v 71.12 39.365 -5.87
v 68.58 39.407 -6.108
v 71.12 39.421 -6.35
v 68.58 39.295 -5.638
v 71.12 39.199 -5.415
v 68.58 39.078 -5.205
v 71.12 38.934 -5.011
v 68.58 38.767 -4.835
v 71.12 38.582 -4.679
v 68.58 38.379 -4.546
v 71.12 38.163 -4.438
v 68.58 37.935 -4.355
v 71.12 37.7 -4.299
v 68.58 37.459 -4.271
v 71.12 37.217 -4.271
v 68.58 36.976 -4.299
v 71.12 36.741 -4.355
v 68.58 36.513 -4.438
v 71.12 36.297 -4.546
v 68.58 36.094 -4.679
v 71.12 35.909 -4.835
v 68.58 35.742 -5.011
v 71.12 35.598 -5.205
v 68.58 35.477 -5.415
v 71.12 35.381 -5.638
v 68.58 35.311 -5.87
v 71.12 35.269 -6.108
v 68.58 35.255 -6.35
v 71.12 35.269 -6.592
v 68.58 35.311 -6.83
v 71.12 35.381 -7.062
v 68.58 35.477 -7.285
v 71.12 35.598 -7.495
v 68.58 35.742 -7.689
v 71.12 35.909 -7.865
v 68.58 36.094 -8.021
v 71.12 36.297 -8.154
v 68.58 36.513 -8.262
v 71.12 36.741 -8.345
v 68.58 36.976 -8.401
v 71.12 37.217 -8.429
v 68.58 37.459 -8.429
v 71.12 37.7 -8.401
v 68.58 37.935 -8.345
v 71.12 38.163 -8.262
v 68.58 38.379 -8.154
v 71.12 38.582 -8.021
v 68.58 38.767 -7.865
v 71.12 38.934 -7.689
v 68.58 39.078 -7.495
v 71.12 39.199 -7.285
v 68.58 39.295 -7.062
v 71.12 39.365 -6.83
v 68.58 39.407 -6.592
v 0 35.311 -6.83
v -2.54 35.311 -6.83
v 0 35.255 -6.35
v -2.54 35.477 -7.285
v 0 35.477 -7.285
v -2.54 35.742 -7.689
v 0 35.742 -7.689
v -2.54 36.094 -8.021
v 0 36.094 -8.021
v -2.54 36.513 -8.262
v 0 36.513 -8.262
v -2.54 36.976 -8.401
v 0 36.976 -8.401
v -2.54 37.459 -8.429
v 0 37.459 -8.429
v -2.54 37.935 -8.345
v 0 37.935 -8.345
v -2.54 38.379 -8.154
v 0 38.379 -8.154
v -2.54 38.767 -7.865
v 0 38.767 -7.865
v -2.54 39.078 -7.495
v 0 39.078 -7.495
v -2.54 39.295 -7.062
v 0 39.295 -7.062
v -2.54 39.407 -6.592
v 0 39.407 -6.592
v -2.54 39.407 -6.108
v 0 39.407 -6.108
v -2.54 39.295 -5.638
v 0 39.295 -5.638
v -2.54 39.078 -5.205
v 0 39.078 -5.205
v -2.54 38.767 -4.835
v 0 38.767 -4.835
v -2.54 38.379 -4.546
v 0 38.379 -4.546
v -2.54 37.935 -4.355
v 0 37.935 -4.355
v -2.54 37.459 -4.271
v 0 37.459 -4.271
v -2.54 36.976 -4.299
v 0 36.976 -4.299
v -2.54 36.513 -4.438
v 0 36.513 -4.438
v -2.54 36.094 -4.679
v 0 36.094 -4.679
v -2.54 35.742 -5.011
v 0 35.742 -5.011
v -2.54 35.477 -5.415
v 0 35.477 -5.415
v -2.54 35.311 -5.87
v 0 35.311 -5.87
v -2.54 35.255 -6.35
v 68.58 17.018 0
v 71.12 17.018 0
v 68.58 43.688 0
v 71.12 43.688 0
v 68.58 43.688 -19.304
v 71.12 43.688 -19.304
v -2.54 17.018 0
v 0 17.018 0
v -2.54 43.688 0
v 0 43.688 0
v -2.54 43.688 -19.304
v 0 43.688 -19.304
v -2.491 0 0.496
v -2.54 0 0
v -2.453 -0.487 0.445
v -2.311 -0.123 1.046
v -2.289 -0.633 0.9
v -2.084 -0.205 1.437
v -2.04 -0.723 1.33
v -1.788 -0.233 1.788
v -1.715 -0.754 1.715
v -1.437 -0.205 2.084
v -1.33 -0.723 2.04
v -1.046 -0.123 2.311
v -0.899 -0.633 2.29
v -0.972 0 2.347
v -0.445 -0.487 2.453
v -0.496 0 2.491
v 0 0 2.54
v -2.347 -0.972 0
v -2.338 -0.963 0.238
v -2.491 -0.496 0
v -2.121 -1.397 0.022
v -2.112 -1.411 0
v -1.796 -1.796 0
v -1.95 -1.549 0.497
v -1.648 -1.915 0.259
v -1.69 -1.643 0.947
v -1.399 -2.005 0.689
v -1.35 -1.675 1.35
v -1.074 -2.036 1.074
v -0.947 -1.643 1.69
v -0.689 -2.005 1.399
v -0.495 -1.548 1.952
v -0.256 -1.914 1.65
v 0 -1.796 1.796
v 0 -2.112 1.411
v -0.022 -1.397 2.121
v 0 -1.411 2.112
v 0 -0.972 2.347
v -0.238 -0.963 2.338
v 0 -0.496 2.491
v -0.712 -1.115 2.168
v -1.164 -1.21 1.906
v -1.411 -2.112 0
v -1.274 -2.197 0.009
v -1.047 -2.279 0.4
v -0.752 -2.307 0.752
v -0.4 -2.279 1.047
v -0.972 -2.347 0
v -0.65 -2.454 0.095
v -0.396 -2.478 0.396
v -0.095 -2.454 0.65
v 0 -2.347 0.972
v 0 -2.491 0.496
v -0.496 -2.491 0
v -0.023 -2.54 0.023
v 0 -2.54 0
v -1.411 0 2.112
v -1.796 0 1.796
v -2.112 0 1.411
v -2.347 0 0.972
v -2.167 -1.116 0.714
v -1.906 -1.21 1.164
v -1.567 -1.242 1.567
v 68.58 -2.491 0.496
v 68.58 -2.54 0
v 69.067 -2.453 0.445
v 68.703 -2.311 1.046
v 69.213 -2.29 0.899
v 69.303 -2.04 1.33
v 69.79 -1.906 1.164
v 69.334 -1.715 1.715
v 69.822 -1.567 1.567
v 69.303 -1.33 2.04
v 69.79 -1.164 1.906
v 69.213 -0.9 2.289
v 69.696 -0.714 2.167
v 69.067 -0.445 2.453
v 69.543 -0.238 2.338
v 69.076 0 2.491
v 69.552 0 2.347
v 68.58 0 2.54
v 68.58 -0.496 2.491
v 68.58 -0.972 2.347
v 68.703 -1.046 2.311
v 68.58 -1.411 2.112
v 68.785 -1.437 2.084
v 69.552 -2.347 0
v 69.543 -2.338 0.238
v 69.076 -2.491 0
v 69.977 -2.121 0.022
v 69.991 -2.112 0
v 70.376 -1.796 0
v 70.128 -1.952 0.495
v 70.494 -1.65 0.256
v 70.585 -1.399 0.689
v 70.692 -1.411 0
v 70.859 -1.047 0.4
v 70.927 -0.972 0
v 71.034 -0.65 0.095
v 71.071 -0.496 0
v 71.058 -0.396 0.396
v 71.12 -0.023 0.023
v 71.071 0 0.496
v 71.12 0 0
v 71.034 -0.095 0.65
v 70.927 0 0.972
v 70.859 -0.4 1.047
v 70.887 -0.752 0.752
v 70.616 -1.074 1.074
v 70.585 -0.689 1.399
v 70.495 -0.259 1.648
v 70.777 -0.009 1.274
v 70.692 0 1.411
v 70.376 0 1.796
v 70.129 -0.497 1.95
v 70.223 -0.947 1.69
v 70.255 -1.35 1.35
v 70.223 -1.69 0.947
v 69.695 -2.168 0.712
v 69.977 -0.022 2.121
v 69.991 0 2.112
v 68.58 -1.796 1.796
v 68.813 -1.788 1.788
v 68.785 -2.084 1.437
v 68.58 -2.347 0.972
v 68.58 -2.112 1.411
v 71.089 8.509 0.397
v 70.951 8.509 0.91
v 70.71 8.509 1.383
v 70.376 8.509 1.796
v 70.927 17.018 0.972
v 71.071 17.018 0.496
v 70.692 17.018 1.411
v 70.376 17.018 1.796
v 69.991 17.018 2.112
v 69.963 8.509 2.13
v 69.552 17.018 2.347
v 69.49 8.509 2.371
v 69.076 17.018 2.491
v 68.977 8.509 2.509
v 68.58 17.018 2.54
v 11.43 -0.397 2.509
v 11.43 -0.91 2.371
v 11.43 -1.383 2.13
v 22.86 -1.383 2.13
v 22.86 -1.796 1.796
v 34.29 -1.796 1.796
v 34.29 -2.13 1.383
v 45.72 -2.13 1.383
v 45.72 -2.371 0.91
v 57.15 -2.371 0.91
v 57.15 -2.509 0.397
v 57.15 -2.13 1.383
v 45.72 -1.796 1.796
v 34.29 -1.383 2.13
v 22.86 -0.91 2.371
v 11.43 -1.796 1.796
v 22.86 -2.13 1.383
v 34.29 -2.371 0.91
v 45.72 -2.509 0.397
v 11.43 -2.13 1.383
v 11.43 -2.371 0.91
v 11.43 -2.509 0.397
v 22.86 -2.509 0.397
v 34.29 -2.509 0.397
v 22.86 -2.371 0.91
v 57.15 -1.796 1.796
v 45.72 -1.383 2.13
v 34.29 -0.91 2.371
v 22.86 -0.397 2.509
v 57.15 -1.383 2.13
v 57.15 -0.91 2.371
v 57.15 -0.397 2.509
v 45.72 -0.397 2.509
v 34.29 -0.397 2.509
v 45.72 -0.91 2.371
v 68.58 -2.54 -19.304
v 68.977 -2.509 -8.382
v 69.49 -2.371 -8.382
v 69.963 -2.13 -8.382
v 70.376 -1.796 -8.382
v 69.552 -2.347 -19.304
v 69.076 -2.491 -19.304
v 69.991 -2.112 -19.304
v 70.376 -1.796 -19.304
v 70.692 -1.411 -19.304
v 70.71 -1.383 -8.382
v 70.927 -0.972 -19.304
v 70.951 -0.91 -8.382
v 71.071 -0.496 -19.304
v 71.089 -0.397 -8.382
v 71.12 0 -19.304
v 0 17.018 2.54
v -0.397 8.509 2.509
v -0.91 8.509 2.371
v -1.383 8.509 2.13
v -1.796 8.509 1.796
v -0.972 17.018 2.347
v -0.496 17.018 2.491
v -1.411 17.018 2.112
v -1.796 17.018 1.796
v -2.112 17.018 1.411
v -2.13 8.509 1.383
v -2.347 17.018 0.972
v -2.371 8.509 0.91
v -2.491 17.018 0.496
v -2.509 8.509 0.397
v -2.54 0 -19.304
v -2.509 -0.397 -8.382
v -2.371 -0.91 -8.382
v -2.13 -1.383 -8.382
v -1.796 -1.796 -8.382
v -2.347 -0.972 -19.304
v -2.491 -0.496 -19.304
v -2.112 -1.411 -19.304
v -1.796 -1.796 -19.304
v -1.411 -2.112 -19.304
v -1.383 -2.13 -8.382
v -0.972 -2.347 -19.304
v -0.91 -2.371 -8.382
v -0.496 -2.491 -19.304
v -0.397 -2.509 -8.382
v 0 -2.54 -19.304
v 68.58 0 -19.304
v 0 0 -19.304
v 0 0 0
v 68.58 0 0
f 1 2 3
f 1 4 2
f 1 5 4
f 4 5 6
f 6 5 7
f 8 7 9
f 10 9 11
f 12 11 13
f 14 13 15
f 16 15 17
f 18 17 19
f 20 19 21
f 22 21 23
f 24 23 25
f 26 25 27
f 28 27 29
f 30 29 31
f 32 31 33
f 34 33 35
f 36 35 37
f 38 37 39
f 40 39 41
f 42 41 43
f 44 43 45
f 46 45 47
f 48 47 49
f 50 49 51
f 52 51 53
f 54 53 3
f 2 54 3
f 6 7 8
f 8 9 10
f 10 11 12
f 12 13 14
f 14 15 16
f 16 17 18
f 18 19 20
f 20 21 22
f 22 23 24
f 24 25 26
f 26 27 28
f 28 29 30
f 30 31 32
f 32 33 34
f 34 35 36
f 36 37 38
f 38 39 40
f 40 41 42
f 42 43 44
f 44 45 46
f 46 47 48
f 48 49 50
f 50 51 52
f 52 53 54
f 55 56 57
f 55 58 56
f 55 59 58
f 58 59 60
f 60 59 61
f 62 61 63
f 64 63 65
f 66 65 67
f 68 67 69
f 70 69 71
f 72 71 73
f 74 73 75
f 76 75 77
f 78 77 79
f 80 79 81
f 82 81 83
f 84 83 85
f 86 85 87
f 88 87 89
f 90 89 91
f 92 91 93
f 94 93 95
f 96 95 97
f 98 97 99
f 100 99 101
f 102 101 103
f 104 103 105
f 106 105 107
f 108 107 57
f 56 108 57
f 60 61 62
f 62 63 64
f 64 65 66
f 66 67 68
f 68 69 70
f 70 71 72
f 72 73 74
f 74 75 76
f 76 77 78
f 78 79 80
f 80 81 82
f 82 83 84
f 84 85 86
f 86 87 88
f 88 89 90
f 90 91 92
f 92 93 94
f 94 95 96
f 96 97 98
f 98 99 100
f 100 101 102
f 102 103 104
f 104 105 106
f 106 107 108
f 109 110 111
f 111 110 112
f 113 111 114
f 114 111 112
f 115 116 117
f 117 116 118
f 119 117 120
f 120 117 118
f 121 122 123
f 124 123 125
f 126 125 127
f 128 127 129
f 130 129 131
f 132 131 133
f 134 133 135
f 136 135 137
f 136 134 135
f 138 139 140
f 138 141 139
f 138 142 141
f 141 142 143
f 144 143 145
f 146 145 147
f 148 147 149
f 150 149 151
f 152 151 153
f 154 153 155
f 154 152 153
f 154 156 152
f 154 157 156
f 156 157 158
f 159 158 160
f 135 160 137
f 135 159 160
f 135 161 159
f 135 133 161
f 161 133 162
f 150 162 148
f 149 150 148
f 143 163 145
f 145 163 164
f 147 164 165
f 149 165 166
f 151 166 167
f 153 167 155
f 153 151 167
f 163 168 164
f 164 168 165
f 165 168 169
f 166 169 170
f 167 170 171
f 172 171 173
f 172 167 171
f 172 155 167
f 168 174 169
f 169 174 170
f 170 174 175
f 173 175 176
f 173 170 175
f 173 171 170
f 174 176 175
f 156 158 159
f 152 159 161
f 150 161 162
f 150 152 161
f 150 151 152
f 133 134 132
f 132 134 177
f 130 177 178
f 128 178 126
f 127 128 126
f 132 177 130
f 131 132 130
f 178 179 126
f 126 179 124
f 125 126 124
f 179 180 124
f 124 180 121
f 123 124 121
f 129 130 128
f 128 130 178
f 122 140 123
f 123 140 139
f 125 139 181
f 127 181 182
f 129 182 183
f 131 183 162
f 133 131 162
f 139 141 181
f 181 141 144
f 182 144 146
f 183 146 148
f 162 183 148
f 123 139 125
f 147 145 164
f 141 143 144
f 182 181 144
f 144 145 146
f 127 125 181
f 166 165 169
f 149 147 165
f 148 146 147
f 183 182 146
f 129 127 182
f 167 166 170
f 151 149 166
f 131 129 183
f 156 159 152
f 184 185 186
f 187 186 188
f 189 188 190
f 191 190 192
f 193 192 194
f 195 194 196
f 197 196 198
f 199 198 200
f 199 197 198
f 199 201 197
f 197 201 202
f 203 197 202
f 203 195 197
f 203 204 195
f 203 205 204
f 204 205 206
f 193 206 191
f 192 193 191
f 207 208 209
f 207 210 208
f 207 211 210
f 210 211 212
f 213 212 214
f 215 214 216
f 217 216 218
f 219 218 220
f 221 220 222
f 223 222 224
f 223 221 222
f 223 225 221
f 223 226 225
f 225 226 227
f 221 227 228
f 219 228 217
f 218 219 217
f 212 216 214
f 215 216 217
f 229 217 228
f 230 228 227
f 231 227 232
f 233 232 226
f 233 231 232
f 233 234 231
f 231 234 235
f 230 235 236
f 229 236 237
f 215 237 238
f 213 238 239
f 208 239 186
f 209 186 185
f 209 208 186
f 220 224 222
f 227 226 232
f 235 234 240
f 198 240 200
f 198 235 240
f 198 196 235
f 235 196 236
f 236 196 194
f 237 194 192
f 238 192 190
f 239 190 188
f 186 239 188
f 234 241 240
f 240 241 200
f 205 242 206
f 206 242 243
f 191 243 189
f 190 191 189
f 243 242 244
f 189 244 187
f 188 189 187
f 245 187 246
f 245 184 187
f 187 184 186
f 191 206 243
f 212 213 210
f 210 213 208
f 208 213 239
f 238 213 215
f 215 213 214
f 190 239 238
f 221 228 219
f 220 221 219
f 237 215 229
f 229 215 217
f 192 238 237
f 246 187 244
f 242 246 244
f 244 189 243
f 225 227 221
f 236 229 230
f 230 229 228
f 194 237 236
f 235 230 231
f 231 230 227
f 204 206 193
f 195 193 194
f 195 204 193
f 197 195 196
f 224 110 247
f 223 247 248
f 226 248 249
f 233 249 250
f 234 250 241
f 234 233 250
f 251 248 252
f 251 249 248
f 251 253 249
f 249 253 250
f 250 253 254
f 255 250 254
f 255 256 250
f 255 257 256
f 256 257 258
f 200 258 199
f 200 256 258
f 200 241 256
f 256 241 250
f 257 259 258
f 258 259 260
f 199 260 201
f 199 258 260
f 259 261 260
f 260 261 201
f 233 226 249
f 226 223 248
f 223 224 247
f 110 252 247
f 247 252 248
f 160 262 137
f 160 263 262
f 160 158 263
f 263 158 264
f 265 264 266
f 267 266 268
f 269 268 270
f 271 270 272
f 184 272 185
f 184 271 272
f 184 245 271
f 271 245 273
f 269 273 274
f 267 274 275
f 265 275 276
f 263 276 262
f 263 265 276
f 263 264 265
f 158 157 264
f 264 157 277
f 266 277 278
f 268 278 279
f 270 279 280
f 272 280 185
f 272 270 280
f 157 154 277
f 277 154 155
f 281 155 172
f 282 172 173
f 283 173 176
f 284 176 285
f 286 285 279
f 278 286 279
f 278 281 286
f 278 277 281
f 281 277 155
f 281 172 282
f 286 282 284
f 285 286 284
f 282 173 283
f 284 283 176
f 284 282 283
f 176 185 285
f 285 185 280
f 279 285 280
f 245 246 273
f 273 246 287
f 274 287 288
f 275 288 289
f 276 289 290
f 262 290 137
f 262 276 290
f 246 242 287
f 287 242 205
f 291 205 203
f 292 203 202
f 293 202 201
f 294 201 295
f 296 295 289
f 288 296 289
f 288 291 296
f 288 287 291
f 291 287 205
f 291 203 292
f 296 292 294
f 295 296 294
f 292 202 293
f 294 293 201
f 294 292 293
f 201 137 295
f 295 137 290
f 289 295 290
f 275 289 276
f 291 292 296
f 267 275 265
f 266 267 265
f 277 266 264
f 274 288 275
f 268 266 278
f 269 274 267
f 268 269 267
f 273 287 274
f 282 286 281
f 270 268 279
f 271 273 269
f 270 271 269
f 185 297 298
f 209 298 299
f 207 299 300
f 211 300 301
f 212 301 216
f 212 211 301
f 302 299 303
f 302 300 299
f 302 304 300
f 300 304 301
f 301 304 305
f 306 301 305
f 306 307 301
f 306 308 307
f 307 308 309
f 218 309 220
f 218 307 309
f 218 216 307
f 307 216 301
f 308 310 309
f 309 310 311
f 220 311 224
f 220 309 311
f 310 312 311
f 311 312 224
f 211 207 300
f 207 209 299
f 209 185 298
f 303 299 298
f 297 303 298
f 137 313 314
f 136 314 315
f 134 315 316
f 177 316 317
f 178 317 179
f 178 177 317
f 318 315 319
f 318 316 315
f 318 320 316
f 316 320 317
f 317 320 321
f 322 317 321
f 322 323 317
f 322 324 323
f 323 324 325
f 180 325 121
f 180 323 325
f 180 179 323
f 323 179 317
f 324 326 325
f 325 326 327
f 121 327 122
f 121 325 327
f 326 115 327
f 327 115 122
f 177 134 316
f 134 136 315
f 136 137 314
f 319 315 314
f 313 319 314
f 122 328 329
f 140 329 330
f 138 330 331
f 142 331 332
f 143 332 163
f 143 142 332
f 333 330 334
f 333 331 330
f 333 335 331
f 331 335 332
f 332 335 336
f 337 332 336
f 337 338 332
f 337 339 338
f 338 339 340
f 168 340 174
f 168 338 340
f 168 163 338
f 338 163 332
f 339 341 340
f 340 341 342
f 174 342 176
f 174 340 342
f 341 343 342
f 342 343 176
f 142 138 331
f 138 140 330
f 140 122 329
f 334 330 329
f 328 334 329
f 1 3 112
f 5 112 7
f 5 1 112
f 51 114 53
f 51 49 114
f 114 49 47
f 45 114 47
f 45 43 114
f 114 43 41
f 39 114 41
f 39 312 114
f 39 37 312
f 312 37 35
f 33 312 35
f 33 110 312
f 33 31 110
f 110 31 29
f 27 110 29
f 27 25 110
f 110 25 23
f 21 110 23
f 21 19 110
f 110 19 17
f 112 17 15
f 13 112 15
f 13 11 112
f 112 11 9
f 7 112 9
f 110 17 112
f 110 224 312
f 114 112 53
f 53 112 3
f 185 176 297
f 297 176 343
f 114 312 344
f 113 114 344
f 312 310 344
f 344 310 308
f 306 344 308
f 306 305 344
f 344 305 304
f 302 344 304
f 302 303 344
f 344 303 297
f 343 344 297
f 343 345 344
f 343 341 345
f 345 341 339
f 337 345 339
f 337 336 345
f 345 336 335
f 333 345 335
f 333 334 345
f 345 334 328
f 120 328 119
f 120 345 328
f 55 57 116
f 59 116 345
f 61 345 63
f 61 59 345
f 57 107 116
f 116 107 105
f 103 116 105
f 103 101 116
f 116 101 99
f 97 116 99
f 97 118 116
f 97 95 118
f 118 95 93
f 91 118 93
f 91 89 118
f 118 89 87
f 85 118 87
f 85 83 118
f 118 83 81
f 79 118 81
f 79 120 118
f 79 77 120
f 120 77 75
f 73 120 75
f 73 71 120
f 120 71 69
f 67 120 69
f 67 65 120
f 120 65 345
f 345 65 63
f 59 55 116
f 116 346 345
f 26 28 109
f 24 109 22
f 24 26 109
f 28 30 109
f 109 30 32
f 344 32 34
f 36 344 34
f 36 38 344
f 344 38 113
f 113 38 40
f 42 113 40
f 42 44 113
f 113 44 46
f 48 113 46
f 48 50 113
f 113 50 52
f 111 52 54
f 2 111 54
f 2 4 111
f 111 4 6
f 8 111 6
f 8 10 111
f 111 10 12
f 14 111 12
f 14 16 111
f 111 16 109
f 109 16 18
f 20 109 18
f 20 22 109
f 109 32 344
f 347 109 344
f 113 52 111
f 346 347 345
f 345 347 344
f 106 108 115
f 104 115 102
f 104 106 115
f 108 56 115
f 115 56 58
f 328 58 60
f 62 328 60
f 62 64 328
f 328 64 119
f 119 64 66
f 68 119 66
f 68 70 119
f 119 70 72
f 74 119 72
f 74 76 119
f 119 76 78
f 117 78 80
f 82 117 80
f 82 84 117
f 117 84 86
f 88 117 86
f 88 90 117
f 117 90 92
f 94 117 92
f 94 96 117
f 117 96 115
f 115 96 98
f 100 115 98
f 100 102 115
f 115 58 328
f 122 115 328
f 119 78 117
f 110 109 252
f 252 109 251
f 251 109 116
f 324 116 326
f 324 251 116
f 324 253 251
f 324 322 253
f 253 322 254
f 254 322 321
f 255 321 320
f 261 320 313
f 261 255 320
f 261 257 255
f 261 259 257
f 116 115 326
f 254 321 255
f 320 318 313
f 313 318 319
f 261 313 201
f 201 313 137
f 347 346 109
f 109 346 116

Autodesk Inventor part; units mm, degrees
ref_plane "YZ Plane" through (0, 0, 0) normal (1, 0, 0) x (0, 1, 0)
ref_plane "XZ Plane" through (0, 0, 0) normal (0, 1, 0) x (-1, 0, 0)
ref_plane "XY Plane" through (0, 0, 0) normal (0, 0, 1) x (1, 0, 0)
sketch "Sketch1" plane through (0, 0, 0) normal (0, 0, 1) x (1, 0, 0)
  line L0 (0, 0) -> (68.58, 0)
  line L1 (68.58, 0) -> (68.58, 17.018)
  line L2 (68.58, 17.018) -> (0, 17.018)
  line L3 (0, 17.018) -> (0, 0)
  dimension "d0" = 17.018
  dimension "d1" = 68.58
extrude "Extrusion1" add sketch "Sketch1" along normal blind 2.54
sketch "Sketch2" plane through (0, 0, 2.54) normal (0, 0, 1) x (1, 0, 0)
  line L0 (0, 0) -> (68.58, 0) projected
  line L1 (68.58, 0) -> (68.58, 17.018) projected
  line L2 (68.58, 17.018) -> (0, 17.018) projected
  line L3 (0, 17.018) -> (0, 0) projected
  line L4 (-2.54, 17.018) -> (71.12, 17.018)
  line L5 (71.12, 17.018) -> (71.12, -2.54)
  line L6 (71.12, -2.54) -> (-2.54, -2.54)
  line L7 (-2.54, -2.54) -> (-2.54, 17.018)
  dimension "d4" = 0
  dimension "d5" = 2.54
  dimension "d6" = 2.54
  dimension "d7" = 2.54
extrude "Extrusion2" add sketch "Sketch2" against normal blind 21.844 contours L0 L1 L4 L5 L6 L7 L3
fillet "Fillet1" radius 2.54 5 edges at (71.12, -2.54, -8.382) (-2.54, -2.54, -8.382) (34.29, -2.54, 2.54) (71.12, 7.239, 2.54) (-2.54, 7.239, 2.54)
sketch "Sketch3" plane through (0, 17.018, 0) normal (0, 1, 0) x (1, 0, 0)
  arc A0 (68.58, -2.54) -> (71.12, 0) centre (68.58, 0) ccw projected
  arc A1 (-2.54, 0) -> (0, -2.54) centre (0, 0) ccw projected
  line L0 (-2.54, 19.304) -> (0, 19.304)
  line L1 (0, 19.304) -> (0, 0)
  line L2 (0, 0) -> (-2.54, 0)
  line L3 (-2.54, 0) -> (-2.54, 19.304)
  line L4 (68.58, 0) -> (71.12, 0)
  line L5 (71.12, 0) -> (71.12, 19.304)
  line L6 (71.12, 19.304) -> (68.58, 19.304)
  line L7 (68.58, 19.304) -> (68.58, 0)
extrude "Extrusion3" add sketch "Sketch3" along normal blind 26.67
hole "Hole1" at (71.12, 37.338, -6.35) direction (-1, 0, 0) diameter 4.1656 end through all
equation "\"d6\" = d5"
equation "\"d7\" = d6"
properties part number "Back_Shield"
